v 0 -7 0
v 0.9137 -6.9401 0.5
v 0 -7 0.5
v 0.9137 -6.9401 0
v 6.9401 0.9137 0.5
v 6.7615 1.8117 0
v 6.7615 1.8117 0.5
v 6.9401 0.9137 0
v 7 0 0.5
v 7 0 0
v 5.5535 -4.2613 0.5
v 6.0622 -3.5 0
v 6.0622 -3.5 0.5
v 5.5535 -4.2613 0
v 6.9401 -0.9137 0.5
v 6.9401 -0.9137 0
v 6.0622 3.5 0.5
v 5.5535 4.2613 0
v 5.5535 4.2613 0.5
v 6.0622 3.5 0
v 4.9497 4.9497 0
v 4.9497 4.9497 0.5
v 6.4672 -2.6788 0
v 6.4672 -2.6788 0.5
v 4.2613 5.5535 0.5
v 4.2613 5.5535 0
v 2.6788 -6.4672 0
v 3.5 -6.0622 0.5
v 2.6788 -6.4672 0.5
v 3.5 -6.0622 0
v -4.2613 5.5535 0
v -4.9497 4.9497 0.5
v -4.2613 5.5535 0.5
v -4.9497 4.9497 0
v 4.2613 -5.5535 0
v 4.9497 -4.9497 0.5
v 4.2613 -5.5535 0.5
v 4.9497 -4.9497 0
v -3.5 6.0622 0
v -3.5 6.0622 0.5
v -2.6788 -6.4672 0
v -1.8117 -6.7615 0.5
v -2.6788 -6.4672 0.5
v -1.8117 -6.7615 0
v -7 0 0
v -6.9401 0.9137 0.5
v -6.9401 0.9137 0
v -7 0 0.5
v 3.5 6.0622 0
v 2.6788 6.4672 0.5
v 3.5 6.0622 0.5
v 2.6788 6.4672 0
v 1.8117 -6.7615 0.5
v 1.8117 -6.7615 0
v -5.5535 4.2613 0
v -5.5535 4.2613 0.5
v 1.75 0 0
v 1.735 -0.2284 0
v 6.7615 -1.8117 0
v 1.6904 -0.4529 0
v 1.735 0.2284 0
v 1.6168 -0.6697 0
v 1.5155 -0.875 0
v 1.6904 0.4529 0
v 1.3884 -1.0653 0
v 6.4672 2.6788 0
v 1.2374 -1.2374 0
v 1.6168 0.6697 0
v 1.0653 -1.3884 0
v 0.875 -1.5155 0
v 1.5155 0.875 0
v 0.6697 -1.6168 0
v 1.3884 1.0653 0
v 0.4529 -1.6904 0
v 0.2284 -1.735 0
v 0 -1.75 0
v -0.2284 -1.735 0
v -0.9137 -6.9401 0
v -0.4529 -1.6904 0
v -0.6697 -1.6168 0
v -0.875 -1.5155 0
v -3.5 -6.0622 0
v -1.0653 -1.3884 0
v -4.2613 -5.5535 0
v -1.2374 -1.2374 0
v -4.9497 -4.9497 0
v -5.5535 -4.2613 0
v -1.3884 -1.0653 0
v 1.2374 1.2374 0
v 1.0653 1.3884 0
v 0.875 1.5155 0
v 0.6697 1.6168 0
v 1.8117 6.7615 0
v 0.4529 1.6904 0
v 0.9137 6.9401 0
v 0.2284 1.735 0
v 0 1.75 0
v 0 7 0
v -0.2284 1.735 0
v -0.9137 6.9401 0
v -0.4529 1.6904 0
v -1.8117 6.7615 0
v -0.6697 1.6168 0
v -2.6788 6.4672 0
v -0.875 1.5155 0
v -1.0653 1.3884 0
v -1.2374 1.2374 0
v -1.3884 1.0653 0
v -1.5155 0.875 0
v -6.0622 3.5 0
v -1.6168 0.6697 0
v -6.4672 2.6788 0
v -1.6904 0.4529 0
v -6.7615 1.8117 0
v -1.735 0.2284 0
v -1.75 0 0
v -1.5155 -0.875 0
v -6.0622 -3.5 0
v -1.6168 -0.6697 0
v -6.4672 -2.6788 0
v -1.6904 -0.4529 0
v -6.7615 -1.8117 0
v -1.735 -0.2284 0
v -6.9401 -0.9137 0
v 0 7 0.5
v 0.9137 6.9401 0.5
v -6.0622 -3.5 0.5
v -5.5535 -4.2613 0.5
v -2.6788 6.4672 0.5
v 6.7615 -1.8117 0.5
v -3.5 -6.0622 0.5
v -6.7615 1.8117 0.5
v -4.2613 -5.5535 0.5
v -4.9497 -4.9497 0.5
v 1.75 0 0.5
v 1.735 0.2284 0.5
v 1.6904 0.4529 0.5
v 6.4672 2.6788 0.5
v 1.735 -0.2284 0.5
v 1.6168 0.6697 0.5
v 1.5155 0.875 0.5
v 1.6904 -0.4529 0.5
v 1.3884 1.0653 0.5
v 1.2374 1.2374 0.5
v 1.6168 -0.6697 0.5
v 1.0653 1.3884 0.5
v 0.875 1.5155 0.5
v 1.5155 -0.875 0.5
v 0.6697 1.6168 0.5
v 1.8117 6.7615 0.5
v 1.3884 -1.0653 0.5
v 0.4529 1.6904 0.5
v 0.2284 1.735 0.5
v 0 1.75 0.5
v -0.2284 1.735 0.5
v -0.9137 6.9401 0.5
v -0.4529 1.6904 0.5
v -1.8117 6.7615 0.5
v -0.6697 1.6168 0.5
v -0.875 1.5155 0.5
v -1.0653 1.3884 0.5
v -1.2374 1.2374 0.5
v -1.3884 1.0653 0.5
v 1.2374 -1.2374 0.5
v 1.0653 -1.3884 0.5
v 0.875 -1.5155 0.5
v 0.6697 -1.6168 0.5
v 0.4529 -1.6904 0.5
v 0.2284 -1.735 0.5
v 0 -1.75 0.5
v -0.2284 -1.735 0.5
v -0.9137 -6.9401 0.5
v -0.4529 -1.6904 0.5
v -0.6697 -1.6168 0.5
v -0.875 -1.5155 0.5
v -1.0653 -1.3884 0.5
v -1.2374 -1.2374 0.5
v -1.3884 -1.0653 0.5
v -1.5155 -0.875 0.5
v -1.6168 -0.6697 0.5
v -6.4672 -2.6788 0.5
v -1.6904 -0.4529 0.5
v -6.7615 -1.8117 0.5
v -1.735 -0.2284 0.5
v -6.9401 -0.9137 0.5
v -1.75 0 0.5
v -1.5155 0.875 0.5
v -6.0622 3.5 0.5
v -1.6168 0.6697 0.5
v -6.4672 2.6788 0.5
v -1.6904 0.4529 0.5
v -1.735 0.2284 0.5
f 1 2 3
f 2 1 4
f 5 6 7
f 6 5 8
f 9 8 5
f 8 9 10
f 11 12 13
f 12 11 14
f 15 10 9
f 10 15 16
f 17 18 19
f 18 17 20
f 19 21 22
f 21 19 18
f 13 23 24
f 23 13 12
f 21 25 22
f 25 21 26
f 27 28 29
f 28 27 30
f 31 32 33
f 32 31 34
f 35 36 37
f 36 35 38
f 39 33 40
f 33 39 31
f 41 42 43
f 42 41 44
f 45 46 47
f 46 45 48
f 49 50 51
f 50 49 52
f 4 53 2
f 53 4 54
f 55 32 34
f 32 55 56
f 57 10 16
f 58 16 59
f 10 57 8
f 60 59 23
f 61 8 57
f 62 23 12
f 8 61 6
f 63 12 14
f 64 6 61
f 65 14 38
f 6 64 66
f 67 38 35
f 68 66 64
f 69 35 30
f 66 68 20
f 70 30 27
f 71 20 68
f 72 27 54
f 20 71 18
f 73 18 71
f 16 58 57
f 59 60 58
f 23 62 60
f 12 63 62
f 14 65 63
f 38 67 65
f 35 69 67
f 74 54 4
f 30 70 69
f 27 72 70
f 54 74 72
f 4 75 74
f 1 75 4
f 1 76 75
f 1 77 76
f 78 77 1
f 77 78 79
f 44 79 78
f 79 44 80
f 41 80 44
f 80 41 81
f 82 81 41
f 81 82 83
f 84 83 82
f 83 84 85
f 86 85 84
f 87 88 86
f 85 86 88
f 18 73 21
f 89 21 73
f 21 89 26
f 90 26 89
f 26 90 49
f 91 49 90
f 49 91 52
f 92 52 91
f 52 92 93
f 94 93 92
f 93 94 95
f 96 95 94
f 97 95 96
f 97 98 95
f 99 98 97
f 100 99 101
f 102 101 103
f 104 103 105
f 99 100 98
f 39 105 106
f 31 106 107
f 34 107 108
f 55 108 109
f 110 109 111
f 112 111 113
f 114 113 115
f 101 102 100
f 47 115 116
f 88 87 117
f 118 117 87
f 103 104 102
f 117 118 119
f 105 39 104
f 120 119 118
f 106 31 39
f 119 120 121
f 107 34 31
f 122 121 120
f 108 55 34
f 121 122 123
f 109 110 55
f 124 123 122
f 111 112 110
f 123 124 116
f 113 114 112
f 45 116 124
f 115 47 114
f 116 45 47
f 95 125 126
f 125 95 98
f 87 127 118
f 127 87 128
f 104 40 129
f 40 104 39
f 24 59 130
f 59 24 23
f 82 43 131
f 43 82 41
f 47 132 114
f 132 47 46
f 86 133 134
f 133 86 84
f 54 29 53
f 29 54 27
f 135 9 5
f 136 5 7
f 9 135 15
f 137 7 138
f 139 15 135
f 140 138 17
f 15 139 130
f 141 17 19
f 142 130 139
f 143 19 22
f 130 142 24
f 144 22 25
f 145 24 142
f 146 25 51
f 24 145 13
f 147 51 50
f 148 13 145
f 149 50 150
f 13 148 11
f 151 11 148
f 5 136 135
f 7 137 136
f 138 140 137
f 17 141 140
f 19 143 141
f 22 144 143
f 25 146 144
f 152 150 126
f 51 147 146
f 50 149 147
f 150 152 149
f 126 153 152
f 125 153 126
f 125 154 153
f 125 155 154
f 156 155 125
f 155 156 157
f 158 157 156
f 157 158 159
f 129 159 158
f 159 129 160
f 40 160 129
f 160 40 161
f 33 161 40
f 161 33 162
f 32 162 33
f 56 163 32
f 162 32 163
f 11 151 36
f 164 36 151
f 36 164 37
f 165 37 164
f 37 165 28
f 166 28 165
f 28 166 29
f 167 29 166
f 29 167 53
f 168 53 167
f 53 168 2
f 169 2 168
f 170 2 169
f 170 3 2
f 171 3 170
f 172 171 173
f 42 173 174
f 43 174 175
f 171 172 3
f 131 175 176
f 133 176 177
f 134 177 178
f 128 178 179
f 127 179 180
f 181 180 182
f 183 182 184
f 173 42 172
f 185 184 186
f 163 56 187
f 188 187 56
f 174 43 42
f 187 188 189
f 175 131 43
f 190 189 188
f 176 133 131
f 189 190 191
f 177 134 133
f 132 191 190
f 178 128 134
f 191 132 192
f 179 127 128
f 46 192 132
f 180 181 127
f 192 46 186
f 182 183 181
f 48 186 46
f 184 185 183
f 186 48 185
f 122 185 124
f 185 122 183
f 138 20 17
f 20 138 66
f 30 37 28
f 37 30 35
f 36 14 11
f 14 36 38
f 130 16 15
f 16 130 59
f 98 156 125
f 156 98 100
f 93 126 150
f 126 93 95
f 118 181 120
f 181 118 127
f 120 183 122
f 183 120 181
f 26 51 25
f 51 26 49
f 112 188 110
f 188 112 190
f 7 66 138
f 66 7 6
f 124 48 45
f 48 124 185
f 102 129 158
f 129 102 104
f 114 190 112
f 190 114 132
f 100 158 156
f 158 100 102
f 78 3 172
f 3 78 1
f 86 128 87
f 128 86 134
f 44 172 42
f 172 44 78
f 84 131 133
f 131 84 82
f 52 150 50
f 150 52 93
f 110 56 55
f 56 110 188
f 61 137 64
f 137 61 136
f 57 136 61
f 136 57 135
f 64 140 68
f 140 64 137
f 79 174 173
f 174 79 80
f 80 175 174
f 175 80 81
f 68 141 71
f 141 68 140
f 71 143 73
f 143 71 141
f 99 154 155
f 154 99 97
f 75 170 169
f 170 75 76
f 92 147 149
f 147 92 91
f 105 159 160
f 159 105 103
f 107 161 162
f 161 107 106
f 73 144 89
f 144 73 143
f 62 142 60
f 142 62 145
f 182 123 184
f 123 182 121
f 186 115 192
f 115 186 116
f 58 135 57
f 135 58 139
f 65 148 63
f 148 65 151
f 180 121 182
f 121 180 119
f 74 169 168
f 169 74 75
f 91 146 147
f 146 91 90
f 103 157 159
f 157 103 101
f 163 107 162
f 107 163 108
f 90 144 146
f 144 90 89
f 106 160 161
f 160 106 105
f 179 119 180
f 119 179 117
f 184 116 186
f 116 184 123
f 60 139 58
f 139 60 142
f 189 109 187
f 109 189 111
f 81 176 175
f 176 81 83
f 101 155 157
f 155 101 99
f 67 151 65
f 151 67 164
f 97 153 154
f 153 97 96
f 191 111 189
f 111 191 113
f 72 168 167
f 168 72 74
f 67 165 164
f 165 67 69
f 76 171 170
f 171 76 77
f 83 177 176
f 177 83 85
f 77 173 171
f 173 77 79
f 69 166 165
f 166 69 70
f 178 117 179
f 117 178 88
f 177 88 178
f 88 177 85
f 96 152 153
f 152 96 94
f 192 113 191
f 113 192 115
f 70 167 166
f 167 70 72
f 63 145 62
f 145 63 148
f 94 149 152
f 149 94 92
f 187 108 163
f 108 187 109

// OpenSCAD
// file: parameters.scad
// =============================================================================
// Gen-CL — nightly 2026-10-16 (physics_scorer, honest magpylib watts)
// Modular swap: exactly the Gen-CJ rotors, arcs and steel, on a thinner-copper stator (4.0 mm copper, so the magnet faces close in by 0.5 mm) that needs only ≈300 m of 26 AWG — the rest of the spool stays free. Swap stators by changing the gap sleeve only.
// Clocking 0 deg (magnets N facing S) + D-flat keyed bore + index notch + flip-symmetric hole map.
// Windable 2-piece bobbin; turns = physics_scorer turns_fit; copper only between flanges.
// Steel back-iron: 2× Ø198 × 4.76 mm (3/16") mild-steel discs (steel_backiron_disc.dxf); magnets sit ON the steel
// (through-pockets) -> score with --back-iron. Night 2026-10-16.
// =============================================================================
topology            = "dual_rotor";

// --- Wire / winding (physics_scorer winding-fit) -------------------------------
wire_awg            = 26;
wire_od             = 0.45;     // insulated OD mm (bare 0.405)
fill_realistic      = 0.65;     // insulated-wire area / window (DENSE layered wind with a jig; scorer cap 0.65)
turns               = 196;       // = physics_scorer turns_fit (do NOT raise)
coil_former_type    = "bobbin";
coil_core_inset     = 12.00;     // radial copper build: hub = copper boundary inset by this
wind_build_axial    = 0.0;      // nothing proud of the flanges
wind_build_radial   = 0.0;

// --- Bobbin (base + lid) ---------------------------------------------------------
coil_id_r           = 50.00;    // copper boundary sector
coil_od_r           = 104.00;
span_deg            = 25.99;    // = pitch - 2*asin((wall+0.85)/coil_id_r) -> >=1.2 mm stator web
former_web          = 4.00;     // copper height between flanges (TALL copper: steel keeps Bz up)
flange_t            = 0.80;     // >= 0.8 mm FDM wall rule (tall winds push on the flanges)
wall                = 0.80;     // flange lip beyond copper
former_bare_h       = former_web + 2 * flange_t;
coil_envelope_h     = former_bare_h + 2 * wind_build_axial;
tab_w               = 7.0;
tab_len             = 7.0;
tab_h               = former_bare_h / 2;
pin_d               = 1.9;      // 1.75 mm filament locating pin
coil_mount_r        = coil_od_r + 0.2 + 4.0;
lead_y              = 1.6;
lead_slot_w         = 0.9;
lead_groove_d       = 0.6;

// --- Gap -------------------------------------------------------------------------
run_clear           = 0.50;     // rotor face -> flange
gap_spacer_h        = run_clear + wind_build_axial;
m2m                 = coil_envelope_h + 2 * run_clear;   // rotor face to rotor face (= gap_sleeve length)

// --- Stator ----------------------------------------------------------------------
coil_stations       = 12;
bay_clear           = 0.35;     // 0.35 mm: bobbin BASES print IN PLACE inside the stator bays (print-in-place gap), then pop out
stator_thick        = former_bare_h;                        // bobbins flush both faces
stator_od           = 229.0;
shaft_clear_stator  = 14.0;     // stator is static; gap sleeve OD 12 spins inside
stator_ir           = 44.85;    // ANNULAR stator: open centre (nested one-plate pack); inner rim 4.0 mm

// --- Rotor(s) --------------------------------------------------------------------
magnet_Br           = 1.43;     // N52
magnet_d_large      = 20.0;
magnet_h_large      = 5.0;      // one O20x5 per pocket
magnet_h_small      = 5.0;      // one O5x5 per pocket
halbach_magnetisation = "diametric"; // O5x5 assist magnets MUST be DIAMETRICALLY magnetised (tangential)
rotor_b_same_axis   = true;     // same-index magnets share one axis: N faces S across the gap
large_pocket_d      = 20.3;
small_pocket_d      = 5.3;
pocket_h            = 5.00;     // THROUGH the carrier: magnet back face sits on the steel disc (FLUSH seat: carrier = magnet height, magnet face level with the rotor face)
large_n             = 8;
R_large             = 86.0;
R_small_inner       = 79.8;
R_small_mid         = 86.0;
R_small_outer       = 92.2;
small_r_list        = [R_small_inner, R_small_mid, R_small_outer];   // O5 pockets between poles
// --- N42 rectangular BLOCK magnets (2026-10-16/17): one 20x10x5 block per pole, radially INSIDE the O20 disc ---
block_R_list        = [64.5];   // block centre radius (pole angle); same polarity as its O20 -> radially extended pole
block_angle_list    = [0];
block_radial        = 20.0;    // block side that runs RADIALLY (mm)
block_tangential    = 10.0;    // block side that runs TANGENTIALLY (mm)
block_h             = 5.0;     // magnetised through the 5 mm thickness (axial), = magnet_h_large so it sits on the steel
block_Br            = 1.29;    // N42 remanence (1.28-1.32 T); scorer models it as a magpylib Cuboid
block_pocket_clear  = 0.3;    // pocket = block + 0.3 mm each way (+ 1.2 mm corner reliefs)
carrier_od          = 198.0;
ring_ir             = 51.35;    // RING rotor: PLA magnet ring r ring_ir..carrier_od/2 (steel disc = structural rotor)
hub_flange_od       = 58.0;     // separate rotor_hub flange (inside the ring, flush with the ring face)
csk_d               = 6.6;      // M3 countersunk head pocket (ISO 10642 head 6.0 nominal) on the stator face
csk_depth           = 1.55;     // = (csk_d - m3_clear) / 2: 90 deg cone; head sits 0.3 mm below the face
n_seg               = 8;        // magnet-carrier ARCS per rotor (segmented carrier)
seg_deg             = 360 / n_seg;
seg_start           = -32;   // arc edge angle (between pocket 0 and its clamp bolt)
seg_kerf_deg        = 0.4;      // gap between neighbouring arcs on the steel
carrier_thick       = pocket_h;
hub_h               = 12.0;     // > steel_t + insert: radial set-screw clears the steel
hub_od              = 24.0;     // slim hub so the M4 brace rods fit at R~18 inside the coil ring
hub_insert_d        = 4.0;      // M3 heat-set insert, radial, bears on the D-flat
rotor_b_offset_deg  = 0.0;      // CLOCKING: magnets directly opposite
shaft_key           = "dflat";
dflat_depth         = 0.5;      // 8 mm shaft with 0.5 mm flat (7.5 across flat)
index_notch_d       = 3.0;

// --- Steel back-iron (buyable laser-cut) -------------------------------------------
steel_t             = 4.76;      // mild steel thickness (image method ignores it; sized from steel_flux.py so the return path stays well below saturation)
steel_center_hole   = 26.0;     // slips over the rotor hub (OD 24)
steel_od            = carrier_od;   // steel disc OD = rotor carrier OD

// --- Modular MAX interface ----------------------------------------------------------
shaft_bore          = 8.35;
dflat_x             = 4.0 - dflat_depth + (shaft_bore - 8.0) / 2;
bearing_d           = 21.85;
bearing_h           = 7.2;
m3_clear            = 3.5;
bolt_r_inner        = 22.0;     // M3 steel-disc clamp bolts (inside the magnet ring)
bolt_n_inner        = 4;
bolt_inner_angles   = [0, 90, 180, 270];
bolt_r_outer        = 86.0;     // second M3 steel-disc clamp ring
bolt_outer_angles   = [13.0, 32.0, 58.0, 77.0, 103.0, 122.0, 148.0, 167.0, 193.0, 212.0, 238.0, 257.0, 283.0, 302.0, 328.0, 347.0];
flange_bolt_r       = 109.5;     // frame rods: OUTSIDE the rotor OD (rotors spin inside them)
flange_bolt_n       = 4;
flange_bolt_offset  = 45.00;    // between coil stations -> never cuts a lead groove/tab
brace_r             = 18.0;
brace_d             = 4.3;      // temporary M4 jack rods (assembly only)
brace_n             = 4;
brace_angles        = [45, 135, 225, 315];          // flip-symmetric

spacer_pad_od       = 14.0;
spacer_pad_id       = m3_clear;
endbell_od          = 229.0;
endbell_thick       = 8.0;
endbell_shaft_clear = 10.0;
collar_h            = 10.0;
standoff_od         = 9.0;
frame_standoff_h    = run_clear + carrier_thick + hub_h + collar_h + 2.0;
sleeve_od           = 12.0;
plate_max_mm        = 410;

$fn = 64;
// main file
// Gen-CL — assembly gap shim, h = run_clear (rotor face -> flange); copper is inside the flanges
include <parameters.scad>;
$fn = 48;
difference() {
    cylinder(d=spacer_pad_od, h=gap_spacer_h);
    translate([0, 0, -0.1]) cylinder(d=spacer_pad_id, h=gap_spacer_h + 0.2);
}
